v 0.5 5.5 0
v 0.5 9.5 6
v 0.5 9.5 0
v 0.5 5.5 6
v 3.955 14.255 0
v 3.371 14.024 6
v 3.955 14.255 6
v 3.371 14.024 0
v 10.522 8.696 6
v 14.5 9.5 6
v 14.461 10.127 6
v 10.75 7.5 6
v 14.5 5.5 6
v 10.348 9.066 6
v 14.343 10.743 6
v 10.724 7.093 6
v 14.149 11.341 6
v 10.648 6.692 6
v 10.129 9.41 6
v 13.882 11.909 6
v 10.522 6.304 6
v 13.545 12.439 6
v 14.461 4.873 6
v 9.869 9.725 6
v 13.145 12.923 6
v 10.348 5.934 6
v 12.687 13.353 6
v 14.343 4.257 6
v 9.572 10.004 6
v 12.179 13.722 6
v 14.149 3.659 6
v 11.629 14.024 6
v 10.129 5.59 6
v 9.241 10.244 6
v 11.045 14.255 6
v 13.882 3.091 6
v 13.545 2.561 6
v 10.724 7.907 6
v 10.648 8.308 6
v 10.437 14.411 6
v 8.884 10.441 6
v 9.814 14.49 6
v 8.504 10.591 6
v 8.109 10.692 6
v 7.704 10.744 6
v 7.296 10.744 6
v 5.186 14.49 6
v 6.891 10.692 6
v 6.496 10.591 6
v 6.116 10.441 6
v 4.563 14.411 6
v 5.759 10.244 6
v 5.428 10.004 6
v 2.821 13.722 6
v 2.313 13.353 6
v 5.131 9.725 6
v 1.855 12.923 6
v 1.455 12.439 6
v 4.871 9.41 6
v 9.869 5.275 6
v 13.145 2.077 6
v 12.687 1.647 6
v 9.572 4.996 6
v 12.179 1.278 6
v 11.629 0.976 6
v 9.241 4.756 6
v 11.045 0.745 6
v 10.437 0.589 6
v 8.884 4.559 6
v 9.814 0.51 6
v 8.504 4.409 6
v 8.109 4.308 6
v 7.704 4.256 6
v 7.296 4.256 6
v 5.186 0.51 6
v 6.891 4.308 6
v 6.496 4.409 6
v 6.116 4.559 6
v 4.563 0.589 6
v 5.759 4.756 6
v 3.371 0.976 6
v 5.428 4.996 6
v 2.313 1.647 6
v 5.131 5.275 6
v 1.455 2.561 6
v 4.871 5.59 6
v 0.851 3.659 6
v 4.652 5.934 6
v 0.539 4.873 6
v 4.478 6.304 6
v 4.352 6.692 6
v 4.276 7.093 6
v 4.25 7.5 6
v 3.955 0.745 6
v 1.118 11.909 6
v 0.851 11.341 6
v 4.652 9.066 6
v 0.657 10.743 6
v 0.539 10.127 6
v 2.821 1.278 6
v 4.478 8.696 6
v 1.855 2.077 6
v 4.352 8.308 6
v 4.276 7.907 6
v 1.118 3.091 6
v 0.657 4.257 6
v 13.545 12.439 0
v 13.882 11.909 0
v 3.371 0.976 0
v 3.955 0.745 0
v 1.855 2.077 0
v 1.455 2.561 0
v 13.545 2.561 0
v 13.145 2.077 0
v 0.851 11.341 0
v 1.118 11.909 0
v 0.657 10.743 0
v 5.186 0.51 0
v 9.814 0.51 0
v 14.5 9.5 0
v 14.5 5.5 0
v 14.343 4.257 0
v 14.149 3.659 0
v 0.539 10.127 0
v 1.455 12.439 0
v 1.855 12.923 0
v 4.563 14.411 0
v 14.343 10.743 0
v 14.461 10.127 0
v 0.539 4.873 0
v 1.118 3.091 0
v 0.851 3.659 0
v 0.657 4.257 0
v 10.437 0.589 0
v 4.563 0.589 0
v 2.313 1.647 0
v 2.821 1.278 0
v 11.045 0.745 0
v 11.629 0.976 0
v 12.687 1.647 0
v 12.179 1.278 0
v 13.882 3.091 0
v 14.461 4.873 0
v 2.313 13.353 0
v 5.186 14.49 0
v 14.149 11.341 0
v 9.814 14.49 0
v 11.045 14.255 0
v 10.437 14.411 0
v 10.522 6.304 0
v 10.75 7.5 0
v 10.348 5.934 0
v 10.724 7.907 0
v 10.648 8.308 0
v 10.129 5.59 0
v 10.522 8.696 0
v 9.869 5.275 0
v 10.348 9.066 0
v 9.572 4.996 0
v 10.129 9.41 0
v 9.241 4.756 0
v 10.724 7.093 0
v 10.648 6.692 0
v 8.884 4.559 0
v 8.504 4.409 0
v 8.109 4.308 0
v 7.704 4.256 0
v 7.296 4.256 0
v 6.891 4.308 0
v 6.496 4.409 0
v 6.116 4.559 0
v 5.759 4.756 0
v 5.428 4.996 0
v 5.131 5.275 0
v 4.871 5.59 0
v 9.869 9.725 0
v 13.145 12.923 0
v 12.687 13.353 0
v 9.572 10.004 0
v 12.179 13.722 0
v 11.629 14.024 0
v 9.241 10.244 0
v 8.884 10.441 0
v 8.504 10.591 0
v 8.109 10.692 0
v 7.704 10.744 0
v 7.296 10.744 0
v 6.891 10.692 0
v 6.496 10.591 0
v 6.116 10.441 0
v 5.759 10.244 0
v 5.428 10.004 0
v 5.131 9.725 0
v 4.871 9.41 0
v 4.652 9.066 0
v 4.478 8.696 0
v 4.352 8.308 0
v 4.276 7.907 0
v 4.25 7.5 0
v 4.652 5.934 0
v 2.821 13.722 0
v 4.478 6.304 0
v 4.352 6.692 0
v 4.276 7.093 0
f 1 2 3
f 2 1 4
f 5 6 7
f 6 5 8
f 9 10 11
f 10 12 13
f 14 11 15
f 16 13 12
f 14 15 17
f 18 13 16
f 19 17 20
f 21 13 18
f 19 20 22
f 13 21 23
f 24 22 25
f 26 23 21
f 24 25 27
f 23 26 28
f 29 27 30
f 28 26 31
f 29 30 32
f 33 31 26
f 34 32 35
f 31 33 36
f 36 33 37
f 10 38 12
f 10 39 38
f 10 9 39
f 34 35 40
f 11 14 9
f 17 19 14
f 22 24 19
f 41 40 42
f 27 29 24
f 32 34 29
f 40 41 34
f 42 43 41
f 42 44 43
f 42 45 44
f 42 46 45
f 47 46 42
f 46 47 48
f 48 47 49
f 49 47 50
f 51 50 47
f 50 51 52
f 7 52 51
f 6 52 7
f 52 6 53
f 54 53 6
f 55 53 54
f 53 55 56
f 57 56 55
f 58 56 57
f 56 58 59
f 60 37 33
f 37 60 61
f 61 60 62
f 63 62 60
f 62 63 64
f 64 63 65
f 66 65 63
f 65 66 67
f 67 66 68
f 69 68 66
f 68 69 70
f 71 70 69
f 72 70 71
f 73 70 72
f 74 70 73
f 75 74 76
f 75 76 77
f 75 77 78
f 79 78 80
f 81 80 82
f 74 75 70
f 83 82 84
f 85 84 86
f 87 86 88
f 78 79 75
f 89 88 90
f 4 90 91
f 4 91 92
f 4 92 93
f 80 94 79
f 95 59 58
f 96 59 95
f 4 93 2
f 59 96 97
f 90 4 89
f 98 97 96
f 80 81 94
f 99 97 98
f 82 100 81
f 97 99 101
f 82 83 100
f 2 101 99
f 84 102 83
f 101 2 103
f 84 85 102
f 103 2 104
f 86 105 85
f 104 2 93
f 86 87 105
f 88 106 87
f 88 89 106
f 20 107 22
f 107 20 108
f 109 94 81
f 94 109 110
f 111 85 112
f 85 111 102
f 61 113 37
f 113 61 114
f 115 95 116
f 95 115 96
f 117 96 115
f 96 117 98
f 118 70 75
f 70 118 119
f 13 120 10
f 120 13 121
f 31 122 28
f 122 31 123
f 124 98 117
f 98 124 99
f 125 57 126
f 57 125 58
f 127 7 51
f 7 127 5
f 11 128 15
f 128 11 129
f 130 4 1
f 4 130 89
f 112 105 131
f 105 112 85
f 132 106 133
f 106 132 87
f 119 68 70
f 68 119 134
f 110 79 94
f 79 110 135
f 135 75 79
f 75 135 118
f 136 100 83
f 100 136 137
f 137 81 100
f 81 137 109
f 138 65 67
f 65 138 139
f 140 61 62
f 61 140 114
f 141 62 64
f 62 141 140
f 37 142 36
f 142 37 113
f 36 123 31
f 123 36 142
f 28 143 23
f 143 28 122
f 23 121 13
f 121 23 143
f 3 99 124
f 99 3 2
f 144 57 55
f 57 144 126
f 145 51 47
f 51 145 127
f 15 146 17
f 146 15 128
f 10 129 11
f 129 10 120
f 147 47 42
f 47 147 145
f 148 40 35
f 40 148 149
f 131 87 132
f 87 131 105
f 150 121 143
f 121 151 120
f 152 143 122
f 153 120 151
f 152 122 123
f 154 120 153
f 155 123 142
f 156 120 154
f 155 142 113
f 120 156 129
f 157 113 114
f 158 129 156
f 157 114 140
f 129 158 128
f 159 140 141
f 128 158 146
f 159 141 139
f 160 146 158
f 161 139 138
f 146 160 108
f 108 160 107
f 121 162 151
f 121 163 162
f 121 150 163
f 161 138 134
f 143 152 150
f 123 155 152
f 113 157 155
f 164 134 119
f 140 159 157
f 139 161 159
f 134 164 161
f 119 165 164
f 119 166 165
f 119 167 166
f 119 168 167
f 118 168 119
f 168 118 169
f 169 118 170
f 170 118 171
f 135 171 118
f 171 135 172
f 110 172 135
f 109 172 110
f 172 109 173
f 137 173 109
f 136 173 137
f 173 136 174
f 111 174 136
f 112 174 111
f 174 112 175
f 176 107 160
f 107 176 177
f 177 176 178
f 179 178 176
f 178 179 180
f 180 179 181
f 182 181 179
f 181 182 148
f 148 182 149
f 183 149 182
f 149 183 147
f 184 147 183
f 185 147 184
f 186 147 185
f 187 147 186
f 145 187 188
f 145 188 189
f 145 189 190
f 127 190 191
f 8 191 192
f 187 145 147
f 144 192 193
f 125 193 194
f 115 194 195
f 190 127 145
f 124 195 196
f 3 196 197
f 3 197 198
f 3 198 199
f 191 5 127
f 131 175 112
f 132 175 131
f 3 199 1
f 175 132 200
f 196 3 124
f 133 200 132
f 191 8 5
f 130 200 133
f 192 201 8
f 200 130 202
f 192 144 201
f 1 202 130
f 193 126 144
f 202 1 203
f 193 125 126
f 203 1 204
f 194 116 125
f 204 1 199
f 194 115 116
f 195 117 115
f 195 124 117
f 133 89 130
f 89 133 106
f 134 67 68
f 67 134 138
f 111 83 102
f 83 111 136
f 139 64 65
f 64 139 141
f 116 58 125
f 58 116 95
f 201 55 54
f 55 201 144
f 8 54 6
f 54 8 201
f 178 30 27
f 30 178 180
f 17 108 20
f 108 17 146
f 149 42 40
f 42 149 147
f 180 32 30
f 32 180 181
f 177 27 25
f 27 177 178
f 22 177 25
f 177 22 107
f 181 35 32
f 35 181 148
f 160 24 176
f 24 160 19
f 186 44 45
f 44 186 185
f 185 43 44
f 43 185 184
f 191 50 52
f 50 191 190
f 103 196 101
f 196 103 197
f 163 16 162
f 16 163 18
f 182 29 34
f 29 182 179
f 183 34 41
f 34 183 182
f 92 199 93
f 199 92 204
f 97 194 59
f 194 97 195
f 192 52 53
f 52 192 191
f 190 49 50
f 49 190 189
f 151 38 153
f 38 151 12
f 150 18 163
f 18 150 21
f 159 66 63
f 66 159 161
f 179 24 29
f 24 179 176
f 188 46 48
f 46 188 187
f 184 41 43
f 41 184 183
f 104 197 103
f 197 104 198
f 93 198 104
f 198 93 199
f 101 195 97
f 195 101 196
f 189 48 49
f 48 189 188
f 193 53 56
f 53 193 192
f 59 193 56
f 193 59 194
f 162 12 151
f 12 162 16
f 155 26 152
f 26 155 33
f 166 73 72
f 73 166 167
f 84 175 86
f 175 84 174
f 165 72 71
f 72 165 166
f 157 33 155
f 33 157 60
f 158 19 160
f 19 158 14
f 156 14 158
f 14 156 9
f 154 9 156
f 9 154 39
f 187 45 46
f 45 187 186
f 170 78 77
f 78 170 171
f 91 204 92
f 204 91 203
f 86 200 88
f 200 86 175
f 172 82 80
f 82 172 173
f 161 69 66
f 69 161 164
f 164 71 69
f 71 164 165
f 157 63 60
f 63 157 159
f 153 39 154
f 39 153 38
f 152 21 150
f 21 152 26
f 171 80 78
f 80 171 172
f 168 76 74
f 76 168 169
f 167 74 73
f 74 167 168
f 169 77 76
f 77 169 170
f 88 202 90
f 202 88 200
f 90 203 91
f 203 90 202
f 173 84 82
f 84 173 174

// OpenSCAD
// Generated by SolidPython 1.1.3 on 2023-01-09 15:31:17
$fn = 50;


difference() {
	union() {
		translate(v = [7.5000000000, 7.5000000000, 0]) {
			rotate(a = [0, 0, 0]) {
				hull() {
					translate(v = [-2.0000000000, 2.0000000000, 0]) {
						rotate(a = [0, 0, 0]) {
							translate(v = [0, 0, 0]) {
								rotate(a = [0, 0, 0]) {
									cylinder(h = 6, r = 5);
								}
							}
						}
					}
					translate(v = [2.0000000000, 2.0000000000, 0]) {
						rotate(a = [0, 0, 0]) {
							translate(v = [0, 0, 0]) {
								rotate(a = [0, 0, 0]) {
									cylinder(h = 6, r = 5);
								}
							}
						}
					}
					translate(v = [-2.0000000000, -2.0000000000, 0]) {
						rotate(a = [0, 0, 0]) {
							translate(v = [0, 0, 0]) {
								rotate(a = [0, 0, 0]) {
									cylinder(h = 6, r = 5);
								}
							}
						}
					}
					translate(v = [2.0000000000, -2.0000000000, 0]) {
						rotate(a = [0, 0, 0]) {
							translate(v = [0, 0, 0]) {
								rotate(a = [0, 0, 0]) {
									cylinder(h = 6, r = 5);
								}
							}
						}
					}
				}
			}
		}
	}
	union() {
		translate(v = [7.5000000000, 7.5000000000, 0]) {
			rotate(a = [0, 0, 0]) {
				translate(v = [0, 0, -50]) {
					rotate(a = [0, 0, 0]) {
						cylinder(h = 100, r = 3.2500000000);
					}
				}
			}
		}
	}
}
/***********************************************
*********      SolidPython code:      **********
************************************************
 
from solid import *
import os
import subprocess

import oomB

import opsc_library_gen

mode = "laser"
#mode = "3d_print"

defined_objects = {}

radius_dict = {}
countersunk_dict = {}


def set_mode(m):
    global mode
    mode = m
    radius_dict['M6'] = 6.5/2
    radius_dict['M3'] = 3.3/2
    if mode == "laser":
        radius_dict['M6'] = 6/2
        radius_dict['M3'] = 3/2

    countersunk_dict['M3'] = {}
    countersunk_dict['M3']['little_rad'] = radius_dict['M3']
    countersunk_dict['M3']['big_rad'] = (5.5+0.6)/2
    if mode == "laser":
        countersunk_dict['M3']['big_rad'] = (4.75+0.6)/2
        countersunk_dict['M3']['little_rad'] = (4.75+0.6)/2

    countersunk_dict['M3']['height'] = 1.7


def opsc_make_object(filename, objects, save_type="none",resolution=50, layers = 1, tilediff = 200, mode="laser"):
    set_mode(mode)
    save_type = save_type.lower()
    os.makedirs(os.path.dirname(filename), exist_ok=True)
    final_object = opsc_get_object(objects)
    # Save the final object to the specified filename    
    scad_render_to_file(final_object, filename, file_header='$fn = %s;' % resolution, include_orig_code=True)
    if mode == "laser":
        filename_laser = filename.replace(".scad","-flat.scad")
        scad_render_to_file(getLaser(final_object, layers=layers, tilediff=tilediff), filename_laser, file_header='$fn = %s;' % resolution, include_orig_code=True)
        if save_type == "all":
            saveToAll(filename_laser)
        elif save_type == "dxf":
            saveToDxf(filename_laser)
    if save_type == "all":
        saveToAll(filename)
    elif save_type == "dxf":
        saveToDxf(filename)


def opsc_get_object(objects):
    # Create the solidpython objects
    positive_objects = [get_opsc_item(obj) for obj in objects if obj['type'] == 'positive']
    negative_objects = [get_opsc_item(obj) for obj in objects if obj['type'] == 'negative']
    # Union the positive objects
    positive_object = union()(*positive_objects)
    # Union the negative objects
    negative_object = union()(*negative_objects)
    # Create the final object by subtracting the negative objects from the positive objects
    return difference()(positive_object, negative_object)

def get_opsc_item(params):
    # A dictionary to map radius string values to numerical values
    #radius_dict = {'small': 5, 'medium': 10, 'large': 15}
    # An array of function names for basic shapes
    basic_shapes = ['cube', 'sphere', 'cylinder']
    
    # An array of function names for other shapes
    other_shapes = ['hole', 'slot', 'rounded_rectangle', 'countersunk']
    


    # Convert radius to r if present, and remove radius from the params dictionary
    if 'radius' in params:
        if isinstance(params['radius'], str):
            # Use the radius_dict to map the radius string value to a numerical value
            params['r'] = radius_dict[params['radius']]
        else:
            params['r'] = params['radius']
        del params['radius']
    

    # Check if the object type is a basic shape
    if params['shape'] in basic_shapes:
        # Remove shape and unexpected dictionary values
        allowed_keys = {'size', 'r', 'r1', 'r2', 'd', 'h', 'rw', 'rh', 'dw', 'dh'}
        shape_params = {k: v for k, v in params.items() if k in allowed_keys}

        # Call the corresponding function for the shape parameter, using ** notation to pass the shape_params dictionary as keyword arguments
        return get_opsc_transform(params,globals()[params['shape']](**shape_params))
    
    # If the object type is not a basic shape, check if it's a defined object or one of the other shapes
    elif params['shape'] in other_shapes:
        # Call the corresponding function for the shape parameter, passing the params dictionary as an argument
        p2 = copy.deepcopy(params)
        p2["pos"] = [0,0,0]
        return get_opsc_transform(params,globals()[params['shape']](p2))
    
    # If the object is not a basic shape or a defined object, try to import it from a .scad file
    else:
        obj = defined_objects[params['shape']]
        return get_opsc_transform(params,obj)

def get_opsc_transform(params, solid_obj):
    # Rotate the object based on the 'rot' field in the params dictionary, or the 'rotX', 'rotY', and 'rotZ' fields if 'rot' is not present
    rot = params.get('rot', [])
    if rot:
        rotX, rotY, rotZ = rot
    else:
        rotX = params.get('rotX', 0)
        rotY = params.get('rotY', 0)
        rotZ = params.get('rotZ', 0)
    solid_obj = rotate([rotX, rotY, rotZ])(solid_obj)

    # Translate the object based on the 'pos' field in the params dictionary, or the 'x', 'y', and 'z' fields if 'pos' is not present
    pos = params.get('pos', [])
    if pos:
        x, y, z = pos
    else:
        x = params.get('x', 0)
        y = params.get('y', 0)
        z = params.get('z', 0)
    solid_obj = translate([x, y, z])(solid_obj)
    return solid_obj


import random

def opsc_easy_array(type, shape, repeats, pos_start, shift_arr, **kwargs):
    for i in range(0,3):
        repeats.append(1)
        pos_start.append(0)
        shift_arr.append(0)
    return_objects = []

    for x in range(0,repeats[0]):
        for y in range(0,repeats[1]):
            for z in range(0,repeats[2]):
                return_objects.append(opsc_easy(type, shape, pos=[pos_start[0]+x*shift_arr[0],pos_start[1]+y*shift_arr[1],pos_start[2]+z*shift_arr[2]], **kwargs))
    return return_objects                



def opsc_easy(type, shape, **kwargs):
    obj = {
        'type': type,
        'shape': shape
    }
    for param in ['size', 'r', 'r1', 'r2', 'd', 'h', 'rw', 'rh', 'dw', 'dh', 'pos', 'x', 'y', 'z', 'rot', 'rotX', 'rotY', 'rotZ', "w"]:
        if param in kwargs:
            obj[param] = kwargs[param]
    return obj

def hole(params):
    p2 = copy.deepcopy(params)  
    # Check if the radius is a string and replace it with the corresponding value from the dictionary
    if isinstance(p2['r'], str):
        p2['r'] = radius_dict[p2['r']]
    
    # Set the height to 100 if not specified
    if 'h' not in p2:
        p2['h'] = 100
        p2["pos"] = [0,0,-50]
    p2["center"] = True
    # Create the cylinder object
    p2["shape"] = "cylinder"
    p2["type"] = "positive"

    return get_opsc_item(p2)

import copy

def countersunk(params):
    p2 = copy.deepcopy(params)
    counter_rad = p2['r']
    p2['r'] = radius_dict[p2['r']]
    hp = copy.deepcopy(p2)
    hp["type"] = "positive"
    hp["shape"] = "hole"
    del hp["rot"]
    hol = get_opsc_item(hp)
    
    cp = copy.deepcopy(p2)
    cp["h"] = countersunk_dict[counter_rad]["height"]
    cp["r2"] = countersunk_dict[counter_rad]["little_rad"]
    cp["r1"] = countersunk_dict[counter_rad]["big_rad"]
    del cp["r"]
    del cp["rot"]
    cp["type"] = "positive"
    cp["shape"] = "cylinder"
    cp["pos"] = [0,0,0]

    top = get_opsc_item(cp)
    return union()(hol,top)



def slot(params):  
    p2 = copy.deepcopy(params) 
    if isinstance(p2['r'], str):
        p2['r'] = radius_dict[p2['r']]
    p2["type"] = "positive"
    p2["shape"] = "hole"
    del p2["rot"]
    p2["pos"] = [0,0,0]
    left = copy.deepcopy(p2)
    right = copy.deepcopy(p2)
    left["pos"][0] = p2["w"] / 2 - p2["r"] 
    
    right["pos"][0] = -p2["w"] / 2 + p2["r"] 
    pass
    leftObj = get_opsc_item(left)
    rightObj = get_opsc_item(right)
    return hull()(leftObj, rightObj)

def rounded_rectangle(params):   
    p2 = copy.deepcopy(params) 
    p2["h"] = p2["size"][2]
    p2["pos"] = p2.get("pos", [0, 0, 0]) 
    p2["type"] = "positive"
    p2["shape"] = "hole"
    p2["pos"] = [0,0,0]
    
    if 'rot' in p2:
        del p2["rot"]   
    if 'r' not in p2:
        p2["r"] = 5 
    tl = copy.deepcopy(p2)
    tr = copy.deepcopy(p2)
    bl = copy.deepcopy(p2)
    br = copy.deepcopy(p2)
    tl["pos"][0] = -(p2["size"][0] - p2["r"]*2)/2
    tl["pos"][1] = (p2["size"][1] - p2["r"]*2)/2
    tr["pos"][0] = (p2["size"][0] - p2["r"]*2)/2
    tr["pos"][1] = (p2["size"][1] - p2["r"]*2)/2
    bl["pos"][0] = -(p2["size"][0] - p2["r"]*2)/2
    bl["pos"][1] = -(p2["size"][1] - p2["r"]*2)/2
    br["pos"][0] = (p2["size"][0] - p2["r"]*2)/2
    br["pos"][1] = -(p2["size"][1] - p2["r"]*2)/2
    del tl["size"]
    del tr["size"]
    del bl["size"]
    del br["size"]
    tlo = get_opsc_item(tl)
    tro = get_opsc_item(tr)
    blo = get_opsc_item(bl)
    bro = get_opsc_item(br)    
    return hull()(tlo, tro, blo, bro)



def import_scad_object(filename):
    # Import the .scad file and convert it to a solidpython object
    #filename = "parts"
    obj = import_scad(filename)
    return obj.main()
    


import os
import solid as solidpython

# A dictionary to store the defined objects


def load_scad_objects():
    opsc_library_gen.gen_library(defined_objects)

import random

def test(num_objects):
    objects = []
    for i in range(num_objects):
        # Choose a random shape
        #shape = random.choice(['cube', 'sphere', 'cylinder', 'hole', 'slot', "rounded_rectangle"])
        shape = random.choice(["rounded_rectangle"])

        # Choose a random type
        type = random.choice(['positive', 'negative'])
        
        # Create an empty object dictionary
        obj = {'shape': shape, 'type': type}
        
        # Set shape-specific parameters
        if obj['shape'] in ['cube']:
            obj['size'] =  [random.uniform(5, 15), random.uniform(5, 15), random.uniform(5, 15)]
        if obj['shape'] in ['rounded_rectangle']:
            obj['size'] =  [random.uniform(5, 15), random.uniform(5, 15), random.uniform(5, 15)]
            obj['r'] = random.uniform(0.5, 5)
        elif obj['shape'] == 'sphere':
            obj['r'] = random.uniform(5, 15)
        elif obj['shape'] in ['cylinder', 'hole']:
            obj['r'] = random.uniform(0.5, 5)
            obj['h'] = random.uniform(5, 15)
        elif obj['shape'] == 'slot':
            obj['r'] = random.uniform(0.5, 5)
            obj['h'] = random.uniform(5, 15)
            obj['w'] = random.uniform(5, 15)
        
        # Set a random position and rotation
        obj['pos'] = [random.uniform(-20, 20), random.uniform(-20, 20), random.uniform(-20, 20)]
        obj['rot'] = [random.uniform(-180, 180), random.uniform(-180, 180), random.uniform(-180, 180)]
        
        # Add the object to the list
        objects.append(obj)
    return objects

####### old file saving
def saveToAll(fileIn):
    saveToDxf(fileIn)
    saveToPng(fileIn)
    saveToStl(fileIn)
    saveToSvg(fileIn)

def saveToDxf(fileIn, fileOut="", copy_to_laser=True):
    if fileOut == "":
        fileOut = fileIn.replace(".scad",".dxf")
    saveToFile(fileIn, fileOut)


    
def saveToPng(fileIn, fileOut="",extra="--render"):
    if fileOut == "":
        fileOut = fileIn.replace(".scad",".png")
    saveToFile(fileIn, fileOut)

def saveToStl(fileIn, fileOut=""):
    if fileOut == "":
        fileOut = fileIn.replace(".scad",".stl")
    saveToFile(fileIn, fileOut)
    
def saveToSvg(fileIn, fileOut=""):
    if fileOut == "":
        fileOut = fileIn.replace(".scad",".svg")
    saveToFile(fileIn, fileOut)

def saveToFile(fileIn, fileOut,extra=""):
    #extra = extra + " --colorscheme Tomorrow"

    launchStr = 'openscad -o "' + fileOut + '"' + extra + ' "' + fileIn + '"'
    if ".png" in fileOut:
        launchStr = launchStr + " --render"
    print("            saveToFile launch string: " + launchStr)
    subprocess.run(launchStr)
    x=0

def getLaser(final_object,start=1.5,layers=1,thickness=3,tilediff=200):
        rv= []

        for x in range(layers):
            rv.append(translate([0,x*tilediff,0])(
                    projection()(
                        intersection()(translate([-500,-500,start+x*thickness])(cube(size=[1000,1000,0.1])),
                            final_object
                        )
                    )
            )
            )
            
        return union()(rv)

set_mode("laser")
load_scad_objects() 
 
************************************************/
